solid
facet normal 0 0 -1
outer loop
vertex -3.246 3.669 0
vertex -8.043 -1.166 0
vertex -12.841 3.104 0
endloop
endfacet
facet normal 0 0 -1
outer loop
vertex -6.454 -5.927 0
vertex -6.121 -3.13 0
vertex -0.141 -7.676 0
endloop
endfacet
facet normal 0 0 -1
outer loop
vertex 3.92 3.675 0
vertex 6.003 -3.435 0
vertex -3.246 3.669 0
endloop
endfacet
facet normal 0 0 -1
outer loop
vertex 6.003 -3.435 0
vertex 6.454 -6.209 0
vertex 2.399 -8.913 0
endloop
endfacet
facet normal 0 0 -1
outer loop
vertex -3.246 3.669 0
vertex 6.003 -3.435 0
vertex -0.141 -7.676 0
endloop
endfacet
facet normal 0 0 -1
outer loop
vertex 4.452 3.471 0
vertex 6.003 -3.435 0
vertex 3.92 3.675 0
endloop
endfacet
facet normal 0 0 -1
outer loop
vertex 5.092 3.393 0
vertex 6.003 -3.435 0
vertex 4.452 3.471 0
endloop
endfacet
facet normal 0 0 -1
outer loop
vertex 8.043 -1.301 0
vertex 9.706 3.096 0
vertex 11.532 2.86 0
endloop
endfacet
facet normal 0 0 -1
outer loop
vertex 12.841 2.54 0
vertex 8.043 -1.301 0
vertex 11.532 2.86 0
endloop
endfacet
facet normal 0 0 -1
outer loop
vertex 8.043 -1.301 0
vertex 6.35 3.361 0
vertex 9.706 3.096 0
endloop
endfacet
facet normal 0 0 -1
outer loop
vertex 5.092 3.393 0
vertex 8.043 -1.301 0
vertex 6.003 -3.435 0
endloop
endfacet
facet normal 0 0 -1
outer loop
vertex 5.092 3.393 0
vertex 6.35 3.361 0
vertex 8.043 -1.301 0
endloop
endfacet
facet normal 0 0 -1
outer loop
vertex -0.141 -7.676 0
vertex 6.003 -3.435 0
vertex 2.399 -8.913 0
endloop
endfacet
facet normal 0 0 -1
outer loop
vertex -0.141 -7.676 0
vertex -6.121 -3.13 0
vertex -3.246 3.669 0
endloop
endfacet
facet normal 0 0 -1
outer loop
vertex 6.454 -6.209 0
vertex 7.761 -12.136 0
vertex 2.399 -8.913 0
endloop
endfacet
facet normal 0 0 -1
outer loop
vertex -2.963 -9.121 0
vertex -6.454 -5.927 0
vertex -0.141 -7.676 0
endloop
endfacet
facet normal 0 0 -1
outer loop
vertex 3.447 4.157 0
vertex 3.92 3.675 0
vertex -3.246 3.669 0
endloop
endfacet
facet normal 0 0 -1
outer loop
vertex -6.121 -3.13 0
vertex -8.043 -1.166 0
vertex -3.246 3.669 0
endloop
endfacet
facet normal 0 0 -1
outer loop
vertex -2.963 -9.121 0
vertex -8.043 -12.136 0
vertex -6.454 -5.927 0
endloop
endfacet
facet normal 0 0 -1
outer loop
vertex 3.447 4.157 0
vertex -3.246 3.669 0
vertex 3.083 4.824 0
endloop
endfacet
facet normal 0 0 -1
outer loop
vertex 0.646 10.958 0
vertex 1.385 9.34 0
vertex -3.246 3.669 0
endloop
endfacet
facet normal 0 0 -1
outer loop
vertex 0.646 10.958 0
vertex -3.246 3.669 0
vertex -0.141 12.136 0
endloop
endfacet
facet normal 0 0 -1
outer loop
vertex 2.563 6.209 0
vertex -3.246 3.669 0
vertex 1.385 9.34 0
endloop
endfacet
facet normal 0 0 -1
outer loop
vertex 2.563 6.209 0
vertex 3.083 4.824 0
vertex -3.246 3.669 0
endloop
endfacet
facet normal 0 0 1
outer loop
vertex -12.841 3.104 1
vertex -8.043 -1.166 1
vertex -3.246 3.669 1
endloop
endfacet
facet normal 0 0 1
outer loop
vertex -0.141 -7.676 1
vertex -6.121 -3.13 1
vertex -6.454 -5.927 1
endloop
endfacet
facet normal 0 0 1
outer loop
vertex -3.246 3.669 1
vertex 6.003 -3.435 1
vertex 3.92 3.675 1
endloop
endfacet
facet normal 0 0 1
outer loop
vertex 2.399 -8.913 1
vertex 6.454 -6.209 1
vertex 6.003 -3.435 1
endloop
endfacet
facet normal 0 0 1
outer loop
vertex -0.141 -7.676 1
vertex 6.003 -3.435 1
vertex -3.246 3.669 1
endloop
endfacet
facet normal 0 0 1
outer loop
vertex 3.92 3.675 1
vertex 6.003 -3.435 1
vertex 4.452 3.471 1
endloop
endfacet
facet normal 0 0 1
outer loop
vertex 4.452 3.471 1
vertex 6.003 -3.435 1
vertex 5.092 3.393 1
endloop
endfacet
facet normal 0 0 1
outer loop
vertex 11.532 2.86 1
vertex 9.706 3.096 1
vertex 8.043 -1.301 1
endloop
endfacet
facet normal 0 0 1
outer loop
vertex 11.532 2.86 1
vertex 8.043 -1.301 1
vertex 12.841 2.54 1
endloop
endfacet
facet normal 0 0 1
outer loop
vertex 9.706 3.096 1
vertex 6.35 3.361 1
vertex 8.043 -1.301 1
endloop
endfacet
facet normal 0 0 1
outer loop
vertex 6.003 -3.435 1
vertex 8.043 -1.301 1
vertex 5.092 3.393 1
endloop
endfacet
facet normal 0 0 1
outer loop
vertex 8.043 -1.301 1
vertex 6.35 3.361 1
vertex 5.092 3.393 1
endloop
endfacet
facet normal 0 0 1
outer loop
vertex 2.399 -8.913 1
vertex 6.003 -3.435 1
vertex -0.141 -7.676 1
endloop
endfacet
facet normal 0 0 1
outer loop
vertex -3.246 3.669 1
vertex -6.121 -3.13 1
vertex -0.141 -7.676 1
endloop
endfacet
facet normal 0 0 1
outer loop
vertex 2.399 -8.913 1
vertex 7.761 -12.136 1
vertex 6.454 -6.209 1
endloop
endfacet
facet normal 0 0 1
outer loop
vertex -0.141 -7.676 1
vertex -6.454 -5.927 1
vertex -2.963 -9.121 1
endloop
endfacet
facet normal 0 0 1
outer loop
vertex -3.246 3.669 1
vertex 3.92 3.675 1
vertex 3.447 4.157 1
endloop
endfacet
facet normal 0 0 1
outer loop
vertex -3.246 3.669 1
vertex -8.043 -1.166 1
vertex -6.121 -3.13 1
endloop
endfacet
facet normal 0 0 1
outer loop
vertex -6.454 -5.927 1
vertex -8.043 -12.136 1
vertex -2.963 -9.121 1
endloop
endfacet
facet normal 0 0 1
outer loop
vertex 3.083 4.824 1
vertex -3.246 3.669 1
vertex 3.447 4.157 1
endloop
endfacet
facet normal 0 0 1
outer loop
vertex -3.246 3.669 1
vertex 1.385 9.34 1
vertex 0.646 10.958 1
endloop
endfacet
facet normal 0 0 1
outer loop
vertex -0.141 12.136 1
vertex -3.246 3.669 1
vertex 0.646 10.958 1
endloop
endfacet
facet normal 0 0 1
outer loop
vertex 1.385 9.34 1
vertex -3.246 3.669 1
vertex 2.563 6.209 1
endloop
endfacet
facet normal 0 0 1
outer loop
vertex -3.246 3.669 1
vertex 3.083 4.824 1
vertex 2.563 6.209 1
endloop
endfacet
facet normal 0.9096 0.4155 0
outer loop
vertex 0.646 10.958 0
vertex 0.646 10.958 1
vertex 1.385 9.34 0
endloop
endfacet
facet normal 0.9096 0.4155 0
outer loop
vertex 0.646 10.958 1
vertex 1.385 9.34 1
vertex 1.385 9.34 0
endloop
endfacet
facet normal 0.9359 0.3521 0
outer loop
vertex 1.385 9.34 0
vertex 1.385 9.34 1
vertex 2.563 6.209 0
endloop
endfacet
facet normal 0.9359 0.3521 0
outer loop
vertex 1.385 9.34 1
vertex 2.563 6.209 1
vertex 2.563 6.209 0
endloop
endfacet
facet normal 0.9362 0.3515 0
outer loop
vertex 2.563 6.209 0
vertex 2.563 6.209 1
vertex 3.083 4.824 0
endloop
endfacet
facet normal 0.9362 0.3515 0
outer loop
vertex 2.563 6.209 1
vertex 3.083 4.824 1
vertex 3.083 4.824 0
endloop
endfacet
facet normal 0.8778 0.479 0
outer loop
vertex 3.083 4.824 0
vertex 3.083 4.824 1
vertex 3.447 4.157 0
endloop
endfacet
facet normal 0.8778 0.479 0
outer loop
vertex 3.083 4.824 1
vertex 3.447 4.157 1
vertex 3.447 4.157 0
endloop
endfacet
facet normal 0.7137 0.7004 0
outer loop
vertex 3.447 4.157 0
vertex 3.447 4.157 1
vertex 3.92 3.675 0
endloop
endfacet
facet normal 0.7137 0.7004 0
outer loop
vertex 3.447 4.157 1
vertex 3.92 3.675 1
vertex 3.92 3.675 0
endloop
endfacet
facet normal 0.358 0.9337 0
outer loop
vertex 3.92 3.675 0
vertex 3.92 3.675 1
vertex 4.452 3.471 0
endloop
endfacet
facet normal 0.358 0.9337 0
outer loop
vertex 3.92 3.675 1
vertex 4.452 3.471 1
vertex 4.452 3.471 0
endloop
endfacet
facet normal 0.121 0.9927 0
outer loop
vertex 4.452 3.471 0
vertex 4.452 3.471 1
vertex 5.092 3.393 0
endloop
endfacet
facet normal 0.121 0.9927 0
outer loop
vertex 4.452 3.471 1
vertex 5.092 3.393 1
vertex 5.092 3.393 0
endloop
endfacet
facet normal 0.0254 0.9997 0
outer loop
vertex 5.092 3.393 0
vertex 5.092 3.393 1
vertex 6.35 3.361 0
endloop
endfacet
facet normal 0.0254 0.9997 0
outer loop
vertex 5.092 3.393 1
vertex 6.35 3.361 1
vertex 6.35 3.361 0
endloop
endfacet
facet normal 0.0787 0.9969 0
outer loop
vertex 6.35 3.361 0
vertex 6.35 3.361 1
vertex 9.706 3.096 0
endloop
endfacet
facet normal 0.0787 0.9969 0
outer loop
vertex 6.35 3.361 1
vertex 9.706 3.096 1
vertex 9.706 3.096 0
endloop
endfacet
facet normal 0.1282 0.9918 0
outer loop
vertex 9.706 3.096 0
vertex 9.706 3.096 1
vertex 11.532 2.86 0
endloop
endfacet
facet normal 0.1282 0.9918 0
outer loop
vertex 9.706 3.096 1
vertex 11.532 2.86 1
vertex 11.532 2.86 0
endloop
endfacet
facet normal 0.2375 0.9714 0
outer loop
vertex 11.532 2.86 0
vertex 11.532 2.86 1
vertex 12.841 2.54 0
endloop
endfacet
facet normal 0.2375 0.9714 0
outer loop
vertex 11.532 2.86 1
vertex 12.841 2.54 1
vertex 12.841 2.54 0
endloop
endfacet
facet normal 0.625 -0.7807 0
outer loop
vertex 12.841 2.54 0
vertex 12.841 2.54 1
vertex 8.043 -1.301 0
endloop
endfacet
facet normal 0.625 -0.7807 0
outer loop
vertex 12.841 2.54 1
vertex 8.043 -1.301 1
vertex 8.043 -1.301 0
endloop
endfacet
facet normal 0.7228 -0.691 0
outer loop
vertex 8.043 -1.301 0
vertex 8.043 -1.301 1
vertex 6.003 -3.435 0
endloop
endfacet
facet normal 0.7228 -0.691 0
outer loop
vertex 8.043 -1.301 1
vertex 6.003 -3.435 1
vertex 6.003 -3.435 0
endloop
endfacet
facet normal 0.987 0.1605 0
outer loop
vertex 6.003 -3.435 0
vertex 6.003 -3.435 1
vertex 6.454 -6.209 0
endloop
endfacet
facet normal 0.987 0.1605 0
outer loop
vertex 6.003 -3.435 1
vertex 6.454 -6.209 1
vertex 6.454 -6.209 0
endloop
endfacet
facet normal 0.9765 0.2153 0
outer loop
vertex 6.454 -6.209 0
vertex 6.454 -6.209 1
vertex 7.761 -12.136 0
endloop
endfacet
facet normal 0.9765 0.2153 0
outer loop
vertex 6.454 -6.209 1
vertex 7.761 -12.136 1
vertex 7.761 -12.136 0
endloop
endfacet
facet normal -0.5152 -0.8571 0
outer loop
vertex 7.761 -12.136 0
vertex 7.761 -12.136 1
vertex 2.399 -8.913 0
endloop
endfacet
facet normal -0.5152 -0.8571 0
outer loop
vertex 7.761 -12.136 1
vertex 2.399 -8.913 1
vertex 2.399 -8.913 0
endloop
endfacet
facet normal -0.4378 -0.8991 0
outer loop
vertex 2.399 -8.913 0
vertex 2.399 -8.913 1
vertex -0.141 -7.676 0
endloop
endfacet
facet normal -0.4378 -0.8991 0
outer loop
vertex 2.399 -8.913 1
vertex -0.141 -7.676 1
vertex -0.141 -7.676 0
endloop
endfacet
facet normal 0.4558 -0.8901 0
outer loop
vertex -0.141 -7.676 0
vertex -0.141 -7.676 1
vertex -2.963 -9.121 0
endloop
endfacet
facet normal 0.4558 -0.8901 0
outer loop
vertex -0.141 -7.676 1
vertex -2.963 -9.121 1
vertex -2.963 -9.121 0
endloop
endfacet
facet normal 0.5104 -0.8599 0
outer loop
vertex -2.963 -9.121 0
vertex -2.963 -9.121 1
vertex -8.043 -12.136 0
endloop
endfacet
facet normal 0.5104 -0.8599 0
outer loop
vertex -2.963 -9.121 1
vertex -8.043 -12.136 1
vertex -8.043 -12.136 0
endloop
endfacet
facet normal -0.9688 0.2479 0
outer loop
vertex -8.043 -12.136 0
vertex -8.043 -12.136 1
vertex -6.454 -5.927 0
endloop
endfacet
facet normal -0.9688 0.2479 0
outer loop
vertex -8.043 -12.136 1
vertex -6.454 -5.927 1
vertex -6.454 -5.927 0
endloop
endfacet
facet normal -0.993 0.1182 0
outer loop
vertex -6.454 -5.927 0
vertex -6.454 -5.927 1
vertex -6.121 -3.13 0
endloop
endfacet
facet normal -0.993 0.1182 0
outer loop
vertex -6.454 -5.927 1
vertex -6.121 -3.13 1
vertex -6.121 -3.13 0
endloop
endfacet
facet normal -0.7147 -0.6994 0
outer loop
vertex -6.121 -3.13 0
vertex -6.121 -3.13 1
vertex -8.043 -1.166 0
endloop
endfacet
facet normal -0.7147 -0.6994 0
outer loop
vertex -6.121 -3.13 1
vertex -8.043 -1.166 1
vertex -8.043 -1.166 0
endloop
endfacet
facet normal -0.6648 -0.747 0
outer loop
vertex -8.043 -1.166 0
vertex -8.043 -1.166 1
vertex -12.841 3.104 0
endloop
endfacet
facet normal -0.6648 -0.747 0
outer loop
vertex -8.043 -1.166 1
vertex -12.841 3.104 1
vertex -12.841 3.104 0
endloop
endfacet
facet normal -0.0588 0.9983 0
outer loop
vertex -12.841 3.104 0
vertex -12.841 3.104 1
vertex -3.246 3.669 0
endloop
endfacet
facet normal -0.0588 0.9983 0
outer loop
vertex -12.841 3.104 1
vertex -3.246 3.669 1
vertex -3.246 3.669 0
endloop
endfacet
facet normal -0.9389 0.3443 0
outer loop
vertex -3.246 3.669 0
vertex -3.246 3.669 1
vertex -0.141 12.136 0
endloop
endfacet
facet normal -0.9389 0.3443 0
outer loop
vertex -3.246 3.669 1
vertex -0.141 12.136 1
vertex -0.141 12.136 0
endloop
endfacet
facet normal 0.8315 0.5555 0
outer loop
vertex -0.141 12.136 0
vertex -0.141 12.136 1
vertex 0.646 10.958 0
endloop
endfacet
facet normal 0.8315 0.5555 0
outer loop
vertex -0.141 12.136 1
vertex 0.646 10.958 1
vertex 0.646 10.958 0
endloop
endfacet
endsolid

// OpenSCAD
// Module names are of the form poly_<inkscape-path-id>().  As a result,
// you can associate a polygon in this OpenSCAD program with the corresponding
// SVG element in the Inkscape document by looking for the XML element with
// the attribute id="inkscape-path-id".

// fudge value is used to ensure that subtracted solids are a tad taller
// in the z dimension than the polygon being subtracted from.  This helps
// keep the resulting .stl file manifold.
fudge = 0.1;

module poly_Selection(h)
{
  scale([25.4/90, -25.4/90, 1]) union()
  {
    linear_extrude(height=h)
      polygon([[9.080000,-22.000000],[10.922500,-17.093750],[12.213125,-14.728281],[13.890000,-13.020000],[15.773906,-12.298125],[18.041250,-12.022500],[22.500000,-11.910000],[34.390000,-10.968750],[40.862812,-10.133906],[45.500000,-9.000000],[28.500000,4.610000],[21.270000,12.170000],[22.870000,22.000000],[27.500000,43.000000],[8.500000,31.580000],[-0.500000,27.200000],[-10.500000,32.320000],[-28.500000,43.000000],[-22.870000,21.000000],[-21.690000,11.090000],[-28.500000,4.130000],[-45.500000,-11.000000],[-11.500000,-13.000000],[-0.500000,-43.000000],[2.289219,-38.828594],[4.908750,-33.096250],[9.080000,-22.000000]]);
  }
}

module star(h)
{

poly_Selection(h);
}

star(1);
